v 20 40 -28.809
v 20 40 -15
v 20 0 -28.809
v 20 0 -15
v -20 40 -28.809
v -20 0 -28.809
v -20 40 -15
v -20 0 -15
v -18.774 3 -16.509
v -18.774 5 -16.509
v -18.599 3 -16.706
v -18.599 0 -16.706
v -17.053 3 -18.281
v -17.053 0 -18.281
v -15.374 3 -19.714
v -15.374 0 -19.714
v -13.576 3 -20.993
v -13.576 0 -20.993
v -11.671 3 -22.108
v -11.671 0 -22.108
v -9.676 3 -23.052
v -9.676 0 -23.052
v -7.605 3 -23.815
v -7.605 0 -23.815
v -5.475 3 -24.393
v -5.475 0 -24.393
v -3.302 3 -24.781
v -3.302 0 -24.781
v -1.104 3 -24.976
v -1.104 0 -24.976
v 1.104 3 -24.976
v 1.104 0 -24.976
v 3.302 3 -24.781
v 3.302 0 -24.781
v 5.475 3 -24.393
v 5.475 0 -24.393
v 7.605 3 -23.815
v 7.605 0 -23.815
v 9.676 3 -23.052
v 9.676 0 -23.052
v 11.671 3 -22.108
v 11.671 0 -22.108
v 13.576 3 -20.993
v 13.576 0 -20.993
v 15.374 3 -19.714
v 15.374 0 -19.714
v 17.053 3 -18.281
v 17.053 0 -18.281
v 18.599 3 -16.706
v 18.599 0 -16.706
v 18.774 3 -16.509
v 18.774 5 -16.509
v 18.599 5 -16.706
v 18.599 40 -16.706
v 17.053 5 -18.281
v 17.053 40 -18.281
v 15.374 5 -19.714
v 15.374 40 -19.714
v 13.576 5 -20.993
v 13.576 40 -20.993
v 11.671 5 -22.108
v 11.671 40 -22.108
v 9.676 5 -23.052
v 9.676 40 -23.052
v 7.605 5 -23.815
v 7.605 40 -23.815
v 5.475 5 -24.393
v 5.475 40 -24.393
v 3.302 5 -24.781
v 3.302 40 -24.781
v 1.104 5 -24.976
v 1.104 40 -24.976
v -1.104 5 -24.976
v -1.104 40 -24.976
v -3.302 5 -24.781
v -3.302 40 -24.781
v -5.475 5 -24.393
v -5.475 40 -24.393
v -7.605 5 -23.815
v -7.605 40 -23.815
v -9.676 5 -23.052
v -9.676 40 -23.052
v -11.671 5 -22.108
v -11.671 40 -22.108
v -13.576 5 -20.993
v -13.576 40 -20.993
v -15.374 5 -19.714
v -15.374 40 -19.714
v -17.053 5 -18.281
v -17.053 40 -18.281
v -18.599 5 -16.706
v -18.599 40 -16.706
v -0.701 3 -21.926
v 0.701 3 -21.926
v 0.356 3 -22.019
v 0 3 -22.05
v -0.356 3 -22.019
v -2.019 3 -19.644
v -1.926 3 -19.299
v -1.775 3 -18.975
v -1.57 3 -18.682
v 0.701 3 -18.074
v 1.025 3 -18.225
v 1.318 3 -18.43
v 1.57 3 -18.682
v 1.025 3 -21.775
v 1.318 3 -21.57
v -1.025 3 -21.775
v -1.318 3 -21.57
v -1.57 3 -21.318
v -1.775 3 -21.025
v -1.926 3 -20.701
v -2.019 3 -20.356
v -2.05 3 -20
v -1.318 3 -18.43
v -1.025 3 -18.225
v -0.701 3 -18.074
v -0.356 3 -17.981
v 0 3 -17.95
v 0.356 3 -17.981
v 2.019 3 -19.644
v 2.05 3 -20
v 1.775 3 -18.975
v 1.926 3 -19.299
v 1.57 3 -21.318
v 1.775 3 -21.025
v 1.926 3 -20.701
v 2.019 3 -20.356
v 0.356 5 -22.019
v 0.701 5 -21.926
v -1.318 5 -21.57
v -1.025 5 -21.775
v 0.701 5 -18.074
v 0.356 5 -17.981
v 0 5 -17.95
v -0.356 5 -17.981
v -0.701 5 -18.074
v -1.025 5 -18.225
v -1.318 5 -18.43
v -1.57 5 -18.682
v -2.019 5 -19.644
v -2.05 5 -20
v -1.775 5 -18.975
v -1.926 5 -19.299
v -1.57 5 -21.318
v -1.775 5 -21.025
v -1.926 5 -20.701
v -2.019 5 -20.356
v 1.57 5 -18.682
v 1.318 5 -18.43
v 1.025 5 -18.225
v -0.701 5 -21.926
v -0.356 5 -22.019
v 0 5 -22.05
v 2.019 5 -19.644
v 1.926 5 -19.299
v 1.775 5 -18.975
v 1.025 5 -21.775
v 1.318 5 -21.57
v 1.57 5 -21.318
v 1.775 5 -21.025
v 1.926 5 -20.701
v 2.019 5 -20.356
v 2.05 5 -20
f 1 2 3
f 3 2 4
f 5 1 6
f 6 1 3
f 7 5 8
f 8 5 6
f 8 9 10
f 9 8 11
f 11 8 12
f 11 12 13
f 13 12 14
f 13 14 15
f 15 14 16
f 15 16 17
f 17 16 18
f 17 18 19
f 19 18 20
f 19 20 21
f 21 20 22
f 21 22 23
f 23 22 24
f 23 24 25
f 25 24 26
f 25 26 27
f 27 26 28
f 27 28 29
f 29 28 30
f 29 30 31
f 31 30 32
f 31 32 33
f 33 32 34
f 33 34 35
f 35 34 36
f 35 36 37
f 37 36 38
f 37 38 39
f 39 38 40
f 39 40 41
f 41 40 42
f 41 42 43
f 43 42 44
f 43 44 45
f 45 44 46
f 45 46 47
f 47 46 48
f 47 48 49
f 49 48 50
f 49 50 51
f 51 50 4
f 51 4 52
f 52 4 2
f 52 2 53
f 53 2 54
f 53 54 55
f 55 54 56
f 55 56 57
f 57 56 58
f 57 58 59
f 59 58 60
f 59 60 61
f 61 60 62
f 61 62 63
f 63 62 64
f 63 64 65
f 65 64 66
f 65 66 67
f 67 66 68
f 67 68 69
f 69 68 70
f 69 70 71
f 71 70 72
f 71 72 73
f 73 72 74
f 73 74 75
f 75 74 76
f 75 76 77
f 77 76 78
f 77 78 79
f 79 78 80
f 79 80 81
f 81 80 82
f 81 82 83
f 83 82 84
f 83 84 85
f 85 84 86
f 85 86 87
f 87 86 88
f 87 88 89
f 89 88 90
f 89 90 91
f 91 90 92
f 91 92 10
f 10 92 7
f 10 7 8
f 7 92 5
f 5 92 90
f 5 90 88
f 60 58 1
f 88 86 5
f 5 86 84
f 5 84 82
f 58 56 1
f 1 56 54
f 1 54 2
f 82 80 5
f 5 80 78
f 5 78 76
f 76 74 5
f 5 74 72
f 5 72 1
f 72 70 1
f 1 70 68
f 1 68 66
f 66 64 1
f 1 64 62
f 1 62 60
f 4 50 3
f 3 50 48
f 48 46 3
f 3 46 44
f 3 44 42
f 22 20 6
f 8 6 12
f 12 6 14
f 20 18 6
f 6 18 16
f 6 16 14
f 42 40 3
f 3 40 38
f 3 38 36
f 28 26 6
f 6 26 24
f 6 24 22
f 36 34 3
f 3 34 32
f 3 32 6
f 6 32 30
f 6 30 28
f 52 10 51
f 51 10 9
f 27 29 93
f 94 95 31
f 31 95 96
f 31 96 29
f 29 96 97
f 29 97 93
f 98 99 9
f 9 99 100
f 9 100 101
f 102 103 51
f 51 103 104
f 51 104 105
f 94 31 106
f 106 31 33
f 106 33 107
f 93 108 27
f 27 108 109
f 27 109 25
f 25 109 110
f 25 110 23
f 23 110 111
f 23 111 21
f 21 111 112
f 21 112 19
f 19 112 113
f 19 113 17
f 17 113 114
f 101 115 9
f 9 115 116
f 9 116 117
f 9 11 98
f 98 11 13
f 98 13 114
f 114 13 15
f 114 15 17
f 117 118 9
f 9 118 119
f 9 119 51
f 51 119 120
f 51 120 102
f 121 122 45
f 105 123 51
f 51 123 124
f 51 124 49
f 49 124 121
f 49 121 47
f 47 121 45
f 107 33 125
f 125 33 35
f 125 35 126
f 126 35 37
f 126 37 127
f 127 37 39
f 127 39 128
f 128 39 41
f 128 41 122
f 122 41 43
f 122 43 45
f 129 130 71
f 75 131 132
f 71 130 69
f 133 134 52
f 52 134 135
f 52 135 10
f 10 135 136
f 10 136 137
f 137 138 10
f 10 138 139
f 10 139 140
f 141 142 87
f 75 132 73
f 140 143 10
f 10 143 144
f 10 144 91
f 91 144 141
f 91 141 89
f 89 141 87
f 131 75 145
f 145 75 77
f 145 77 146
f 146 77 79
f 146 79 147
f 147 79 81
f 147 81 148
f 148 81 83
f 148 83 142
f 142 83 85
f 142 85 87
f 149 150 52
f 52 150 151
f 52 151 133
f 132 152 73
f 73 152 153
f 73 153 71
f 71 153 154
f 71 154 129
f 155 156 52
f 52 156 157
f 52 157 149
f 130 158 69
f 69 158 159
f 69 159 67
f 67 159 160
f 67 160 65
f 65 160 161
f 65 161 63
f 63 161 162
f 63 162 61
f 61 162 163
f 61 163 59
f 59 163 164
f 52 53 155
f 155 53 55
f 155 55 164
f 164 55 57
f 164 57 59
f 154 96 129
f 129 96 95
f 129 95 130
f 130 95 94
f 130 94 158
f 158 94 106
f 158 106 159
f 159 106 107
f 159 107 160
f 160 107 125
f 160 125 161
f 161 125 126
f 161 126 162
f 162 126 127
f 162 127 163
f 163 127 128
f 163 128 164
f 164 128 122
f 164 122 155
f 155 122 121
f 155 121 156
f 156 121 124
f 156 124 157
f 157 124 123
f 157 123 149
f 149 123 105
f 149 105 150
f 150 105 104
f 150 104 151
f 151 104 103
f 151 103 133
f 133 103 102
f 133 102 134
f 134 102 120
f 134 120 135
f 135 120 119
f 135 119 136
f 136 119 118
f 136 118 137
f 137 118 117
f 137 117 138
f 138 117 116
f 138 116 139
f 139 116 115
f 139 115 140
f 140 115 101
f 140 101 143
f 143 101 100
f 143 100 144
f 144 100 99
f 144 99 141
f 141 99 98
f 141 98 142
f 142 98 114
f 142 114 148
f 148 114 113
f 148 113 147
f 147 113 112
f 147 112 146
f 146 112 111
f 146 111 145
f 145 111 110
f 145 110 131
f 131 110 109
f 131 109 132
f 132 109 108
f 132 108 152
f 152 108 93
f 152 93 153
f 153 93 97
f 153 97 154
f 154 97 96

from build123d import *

# Parameters (mm, degrees)
BOSS_EXTRUDE1_DEPTH = 40
SKETCH7_W           = 40
SKETCH7_H           = 10
BOSS_EXTRUDE2_DEPTH = 2
SKETCH8_R           = 2.05
CUT_EXTRUDE1_DEPTH  = 38


with BuildPart() as part:
    # Sketch6 → Boss-Extrude1 (new body)
    with BuildSketch(Plane(origin=(0, 0, 0), x_dir=(1, 0, 0), z_dir=(0, 1, 0))):
        with BuildLine():
            Line((20, 28.809017417), (-20, 28.809017417))
            Line((-20, 28.809017417), (-20, 15))
            ThreePointArc((-20, 15), (0, 25), (20, 15))
            Line((20, 15), (20, 28.809017417))
        make_face()
    extrude(amount=BOSS_EXTRUDE1_DEPTH)

    # Sketch7 → Boss-Extrude2 (add)
    with BuildSketch(Plane(origin=(0, 5, 0), x_dir=(-1, 0, 0), z_dir=(0, -1, 0))):
        with Locations((0, 21.508861193)):
            Rectangle(SKETCH7_W, SKETCH7_H)
    extrude(amount=BOSS_EXTRUDE2_DEPTH)

    # Sketch8 → Cut-Extrude1 (cut, through all)
    with BuildSketch(Plane.XZ.offset(-3)):
        with Locations((0, -20)):
            Circle(SKETCH8_R)
    extrude(amount=-CUT_EXTRUDE1_DEPTH, mode=Mode.SUBTRACT)


solid = part.part
